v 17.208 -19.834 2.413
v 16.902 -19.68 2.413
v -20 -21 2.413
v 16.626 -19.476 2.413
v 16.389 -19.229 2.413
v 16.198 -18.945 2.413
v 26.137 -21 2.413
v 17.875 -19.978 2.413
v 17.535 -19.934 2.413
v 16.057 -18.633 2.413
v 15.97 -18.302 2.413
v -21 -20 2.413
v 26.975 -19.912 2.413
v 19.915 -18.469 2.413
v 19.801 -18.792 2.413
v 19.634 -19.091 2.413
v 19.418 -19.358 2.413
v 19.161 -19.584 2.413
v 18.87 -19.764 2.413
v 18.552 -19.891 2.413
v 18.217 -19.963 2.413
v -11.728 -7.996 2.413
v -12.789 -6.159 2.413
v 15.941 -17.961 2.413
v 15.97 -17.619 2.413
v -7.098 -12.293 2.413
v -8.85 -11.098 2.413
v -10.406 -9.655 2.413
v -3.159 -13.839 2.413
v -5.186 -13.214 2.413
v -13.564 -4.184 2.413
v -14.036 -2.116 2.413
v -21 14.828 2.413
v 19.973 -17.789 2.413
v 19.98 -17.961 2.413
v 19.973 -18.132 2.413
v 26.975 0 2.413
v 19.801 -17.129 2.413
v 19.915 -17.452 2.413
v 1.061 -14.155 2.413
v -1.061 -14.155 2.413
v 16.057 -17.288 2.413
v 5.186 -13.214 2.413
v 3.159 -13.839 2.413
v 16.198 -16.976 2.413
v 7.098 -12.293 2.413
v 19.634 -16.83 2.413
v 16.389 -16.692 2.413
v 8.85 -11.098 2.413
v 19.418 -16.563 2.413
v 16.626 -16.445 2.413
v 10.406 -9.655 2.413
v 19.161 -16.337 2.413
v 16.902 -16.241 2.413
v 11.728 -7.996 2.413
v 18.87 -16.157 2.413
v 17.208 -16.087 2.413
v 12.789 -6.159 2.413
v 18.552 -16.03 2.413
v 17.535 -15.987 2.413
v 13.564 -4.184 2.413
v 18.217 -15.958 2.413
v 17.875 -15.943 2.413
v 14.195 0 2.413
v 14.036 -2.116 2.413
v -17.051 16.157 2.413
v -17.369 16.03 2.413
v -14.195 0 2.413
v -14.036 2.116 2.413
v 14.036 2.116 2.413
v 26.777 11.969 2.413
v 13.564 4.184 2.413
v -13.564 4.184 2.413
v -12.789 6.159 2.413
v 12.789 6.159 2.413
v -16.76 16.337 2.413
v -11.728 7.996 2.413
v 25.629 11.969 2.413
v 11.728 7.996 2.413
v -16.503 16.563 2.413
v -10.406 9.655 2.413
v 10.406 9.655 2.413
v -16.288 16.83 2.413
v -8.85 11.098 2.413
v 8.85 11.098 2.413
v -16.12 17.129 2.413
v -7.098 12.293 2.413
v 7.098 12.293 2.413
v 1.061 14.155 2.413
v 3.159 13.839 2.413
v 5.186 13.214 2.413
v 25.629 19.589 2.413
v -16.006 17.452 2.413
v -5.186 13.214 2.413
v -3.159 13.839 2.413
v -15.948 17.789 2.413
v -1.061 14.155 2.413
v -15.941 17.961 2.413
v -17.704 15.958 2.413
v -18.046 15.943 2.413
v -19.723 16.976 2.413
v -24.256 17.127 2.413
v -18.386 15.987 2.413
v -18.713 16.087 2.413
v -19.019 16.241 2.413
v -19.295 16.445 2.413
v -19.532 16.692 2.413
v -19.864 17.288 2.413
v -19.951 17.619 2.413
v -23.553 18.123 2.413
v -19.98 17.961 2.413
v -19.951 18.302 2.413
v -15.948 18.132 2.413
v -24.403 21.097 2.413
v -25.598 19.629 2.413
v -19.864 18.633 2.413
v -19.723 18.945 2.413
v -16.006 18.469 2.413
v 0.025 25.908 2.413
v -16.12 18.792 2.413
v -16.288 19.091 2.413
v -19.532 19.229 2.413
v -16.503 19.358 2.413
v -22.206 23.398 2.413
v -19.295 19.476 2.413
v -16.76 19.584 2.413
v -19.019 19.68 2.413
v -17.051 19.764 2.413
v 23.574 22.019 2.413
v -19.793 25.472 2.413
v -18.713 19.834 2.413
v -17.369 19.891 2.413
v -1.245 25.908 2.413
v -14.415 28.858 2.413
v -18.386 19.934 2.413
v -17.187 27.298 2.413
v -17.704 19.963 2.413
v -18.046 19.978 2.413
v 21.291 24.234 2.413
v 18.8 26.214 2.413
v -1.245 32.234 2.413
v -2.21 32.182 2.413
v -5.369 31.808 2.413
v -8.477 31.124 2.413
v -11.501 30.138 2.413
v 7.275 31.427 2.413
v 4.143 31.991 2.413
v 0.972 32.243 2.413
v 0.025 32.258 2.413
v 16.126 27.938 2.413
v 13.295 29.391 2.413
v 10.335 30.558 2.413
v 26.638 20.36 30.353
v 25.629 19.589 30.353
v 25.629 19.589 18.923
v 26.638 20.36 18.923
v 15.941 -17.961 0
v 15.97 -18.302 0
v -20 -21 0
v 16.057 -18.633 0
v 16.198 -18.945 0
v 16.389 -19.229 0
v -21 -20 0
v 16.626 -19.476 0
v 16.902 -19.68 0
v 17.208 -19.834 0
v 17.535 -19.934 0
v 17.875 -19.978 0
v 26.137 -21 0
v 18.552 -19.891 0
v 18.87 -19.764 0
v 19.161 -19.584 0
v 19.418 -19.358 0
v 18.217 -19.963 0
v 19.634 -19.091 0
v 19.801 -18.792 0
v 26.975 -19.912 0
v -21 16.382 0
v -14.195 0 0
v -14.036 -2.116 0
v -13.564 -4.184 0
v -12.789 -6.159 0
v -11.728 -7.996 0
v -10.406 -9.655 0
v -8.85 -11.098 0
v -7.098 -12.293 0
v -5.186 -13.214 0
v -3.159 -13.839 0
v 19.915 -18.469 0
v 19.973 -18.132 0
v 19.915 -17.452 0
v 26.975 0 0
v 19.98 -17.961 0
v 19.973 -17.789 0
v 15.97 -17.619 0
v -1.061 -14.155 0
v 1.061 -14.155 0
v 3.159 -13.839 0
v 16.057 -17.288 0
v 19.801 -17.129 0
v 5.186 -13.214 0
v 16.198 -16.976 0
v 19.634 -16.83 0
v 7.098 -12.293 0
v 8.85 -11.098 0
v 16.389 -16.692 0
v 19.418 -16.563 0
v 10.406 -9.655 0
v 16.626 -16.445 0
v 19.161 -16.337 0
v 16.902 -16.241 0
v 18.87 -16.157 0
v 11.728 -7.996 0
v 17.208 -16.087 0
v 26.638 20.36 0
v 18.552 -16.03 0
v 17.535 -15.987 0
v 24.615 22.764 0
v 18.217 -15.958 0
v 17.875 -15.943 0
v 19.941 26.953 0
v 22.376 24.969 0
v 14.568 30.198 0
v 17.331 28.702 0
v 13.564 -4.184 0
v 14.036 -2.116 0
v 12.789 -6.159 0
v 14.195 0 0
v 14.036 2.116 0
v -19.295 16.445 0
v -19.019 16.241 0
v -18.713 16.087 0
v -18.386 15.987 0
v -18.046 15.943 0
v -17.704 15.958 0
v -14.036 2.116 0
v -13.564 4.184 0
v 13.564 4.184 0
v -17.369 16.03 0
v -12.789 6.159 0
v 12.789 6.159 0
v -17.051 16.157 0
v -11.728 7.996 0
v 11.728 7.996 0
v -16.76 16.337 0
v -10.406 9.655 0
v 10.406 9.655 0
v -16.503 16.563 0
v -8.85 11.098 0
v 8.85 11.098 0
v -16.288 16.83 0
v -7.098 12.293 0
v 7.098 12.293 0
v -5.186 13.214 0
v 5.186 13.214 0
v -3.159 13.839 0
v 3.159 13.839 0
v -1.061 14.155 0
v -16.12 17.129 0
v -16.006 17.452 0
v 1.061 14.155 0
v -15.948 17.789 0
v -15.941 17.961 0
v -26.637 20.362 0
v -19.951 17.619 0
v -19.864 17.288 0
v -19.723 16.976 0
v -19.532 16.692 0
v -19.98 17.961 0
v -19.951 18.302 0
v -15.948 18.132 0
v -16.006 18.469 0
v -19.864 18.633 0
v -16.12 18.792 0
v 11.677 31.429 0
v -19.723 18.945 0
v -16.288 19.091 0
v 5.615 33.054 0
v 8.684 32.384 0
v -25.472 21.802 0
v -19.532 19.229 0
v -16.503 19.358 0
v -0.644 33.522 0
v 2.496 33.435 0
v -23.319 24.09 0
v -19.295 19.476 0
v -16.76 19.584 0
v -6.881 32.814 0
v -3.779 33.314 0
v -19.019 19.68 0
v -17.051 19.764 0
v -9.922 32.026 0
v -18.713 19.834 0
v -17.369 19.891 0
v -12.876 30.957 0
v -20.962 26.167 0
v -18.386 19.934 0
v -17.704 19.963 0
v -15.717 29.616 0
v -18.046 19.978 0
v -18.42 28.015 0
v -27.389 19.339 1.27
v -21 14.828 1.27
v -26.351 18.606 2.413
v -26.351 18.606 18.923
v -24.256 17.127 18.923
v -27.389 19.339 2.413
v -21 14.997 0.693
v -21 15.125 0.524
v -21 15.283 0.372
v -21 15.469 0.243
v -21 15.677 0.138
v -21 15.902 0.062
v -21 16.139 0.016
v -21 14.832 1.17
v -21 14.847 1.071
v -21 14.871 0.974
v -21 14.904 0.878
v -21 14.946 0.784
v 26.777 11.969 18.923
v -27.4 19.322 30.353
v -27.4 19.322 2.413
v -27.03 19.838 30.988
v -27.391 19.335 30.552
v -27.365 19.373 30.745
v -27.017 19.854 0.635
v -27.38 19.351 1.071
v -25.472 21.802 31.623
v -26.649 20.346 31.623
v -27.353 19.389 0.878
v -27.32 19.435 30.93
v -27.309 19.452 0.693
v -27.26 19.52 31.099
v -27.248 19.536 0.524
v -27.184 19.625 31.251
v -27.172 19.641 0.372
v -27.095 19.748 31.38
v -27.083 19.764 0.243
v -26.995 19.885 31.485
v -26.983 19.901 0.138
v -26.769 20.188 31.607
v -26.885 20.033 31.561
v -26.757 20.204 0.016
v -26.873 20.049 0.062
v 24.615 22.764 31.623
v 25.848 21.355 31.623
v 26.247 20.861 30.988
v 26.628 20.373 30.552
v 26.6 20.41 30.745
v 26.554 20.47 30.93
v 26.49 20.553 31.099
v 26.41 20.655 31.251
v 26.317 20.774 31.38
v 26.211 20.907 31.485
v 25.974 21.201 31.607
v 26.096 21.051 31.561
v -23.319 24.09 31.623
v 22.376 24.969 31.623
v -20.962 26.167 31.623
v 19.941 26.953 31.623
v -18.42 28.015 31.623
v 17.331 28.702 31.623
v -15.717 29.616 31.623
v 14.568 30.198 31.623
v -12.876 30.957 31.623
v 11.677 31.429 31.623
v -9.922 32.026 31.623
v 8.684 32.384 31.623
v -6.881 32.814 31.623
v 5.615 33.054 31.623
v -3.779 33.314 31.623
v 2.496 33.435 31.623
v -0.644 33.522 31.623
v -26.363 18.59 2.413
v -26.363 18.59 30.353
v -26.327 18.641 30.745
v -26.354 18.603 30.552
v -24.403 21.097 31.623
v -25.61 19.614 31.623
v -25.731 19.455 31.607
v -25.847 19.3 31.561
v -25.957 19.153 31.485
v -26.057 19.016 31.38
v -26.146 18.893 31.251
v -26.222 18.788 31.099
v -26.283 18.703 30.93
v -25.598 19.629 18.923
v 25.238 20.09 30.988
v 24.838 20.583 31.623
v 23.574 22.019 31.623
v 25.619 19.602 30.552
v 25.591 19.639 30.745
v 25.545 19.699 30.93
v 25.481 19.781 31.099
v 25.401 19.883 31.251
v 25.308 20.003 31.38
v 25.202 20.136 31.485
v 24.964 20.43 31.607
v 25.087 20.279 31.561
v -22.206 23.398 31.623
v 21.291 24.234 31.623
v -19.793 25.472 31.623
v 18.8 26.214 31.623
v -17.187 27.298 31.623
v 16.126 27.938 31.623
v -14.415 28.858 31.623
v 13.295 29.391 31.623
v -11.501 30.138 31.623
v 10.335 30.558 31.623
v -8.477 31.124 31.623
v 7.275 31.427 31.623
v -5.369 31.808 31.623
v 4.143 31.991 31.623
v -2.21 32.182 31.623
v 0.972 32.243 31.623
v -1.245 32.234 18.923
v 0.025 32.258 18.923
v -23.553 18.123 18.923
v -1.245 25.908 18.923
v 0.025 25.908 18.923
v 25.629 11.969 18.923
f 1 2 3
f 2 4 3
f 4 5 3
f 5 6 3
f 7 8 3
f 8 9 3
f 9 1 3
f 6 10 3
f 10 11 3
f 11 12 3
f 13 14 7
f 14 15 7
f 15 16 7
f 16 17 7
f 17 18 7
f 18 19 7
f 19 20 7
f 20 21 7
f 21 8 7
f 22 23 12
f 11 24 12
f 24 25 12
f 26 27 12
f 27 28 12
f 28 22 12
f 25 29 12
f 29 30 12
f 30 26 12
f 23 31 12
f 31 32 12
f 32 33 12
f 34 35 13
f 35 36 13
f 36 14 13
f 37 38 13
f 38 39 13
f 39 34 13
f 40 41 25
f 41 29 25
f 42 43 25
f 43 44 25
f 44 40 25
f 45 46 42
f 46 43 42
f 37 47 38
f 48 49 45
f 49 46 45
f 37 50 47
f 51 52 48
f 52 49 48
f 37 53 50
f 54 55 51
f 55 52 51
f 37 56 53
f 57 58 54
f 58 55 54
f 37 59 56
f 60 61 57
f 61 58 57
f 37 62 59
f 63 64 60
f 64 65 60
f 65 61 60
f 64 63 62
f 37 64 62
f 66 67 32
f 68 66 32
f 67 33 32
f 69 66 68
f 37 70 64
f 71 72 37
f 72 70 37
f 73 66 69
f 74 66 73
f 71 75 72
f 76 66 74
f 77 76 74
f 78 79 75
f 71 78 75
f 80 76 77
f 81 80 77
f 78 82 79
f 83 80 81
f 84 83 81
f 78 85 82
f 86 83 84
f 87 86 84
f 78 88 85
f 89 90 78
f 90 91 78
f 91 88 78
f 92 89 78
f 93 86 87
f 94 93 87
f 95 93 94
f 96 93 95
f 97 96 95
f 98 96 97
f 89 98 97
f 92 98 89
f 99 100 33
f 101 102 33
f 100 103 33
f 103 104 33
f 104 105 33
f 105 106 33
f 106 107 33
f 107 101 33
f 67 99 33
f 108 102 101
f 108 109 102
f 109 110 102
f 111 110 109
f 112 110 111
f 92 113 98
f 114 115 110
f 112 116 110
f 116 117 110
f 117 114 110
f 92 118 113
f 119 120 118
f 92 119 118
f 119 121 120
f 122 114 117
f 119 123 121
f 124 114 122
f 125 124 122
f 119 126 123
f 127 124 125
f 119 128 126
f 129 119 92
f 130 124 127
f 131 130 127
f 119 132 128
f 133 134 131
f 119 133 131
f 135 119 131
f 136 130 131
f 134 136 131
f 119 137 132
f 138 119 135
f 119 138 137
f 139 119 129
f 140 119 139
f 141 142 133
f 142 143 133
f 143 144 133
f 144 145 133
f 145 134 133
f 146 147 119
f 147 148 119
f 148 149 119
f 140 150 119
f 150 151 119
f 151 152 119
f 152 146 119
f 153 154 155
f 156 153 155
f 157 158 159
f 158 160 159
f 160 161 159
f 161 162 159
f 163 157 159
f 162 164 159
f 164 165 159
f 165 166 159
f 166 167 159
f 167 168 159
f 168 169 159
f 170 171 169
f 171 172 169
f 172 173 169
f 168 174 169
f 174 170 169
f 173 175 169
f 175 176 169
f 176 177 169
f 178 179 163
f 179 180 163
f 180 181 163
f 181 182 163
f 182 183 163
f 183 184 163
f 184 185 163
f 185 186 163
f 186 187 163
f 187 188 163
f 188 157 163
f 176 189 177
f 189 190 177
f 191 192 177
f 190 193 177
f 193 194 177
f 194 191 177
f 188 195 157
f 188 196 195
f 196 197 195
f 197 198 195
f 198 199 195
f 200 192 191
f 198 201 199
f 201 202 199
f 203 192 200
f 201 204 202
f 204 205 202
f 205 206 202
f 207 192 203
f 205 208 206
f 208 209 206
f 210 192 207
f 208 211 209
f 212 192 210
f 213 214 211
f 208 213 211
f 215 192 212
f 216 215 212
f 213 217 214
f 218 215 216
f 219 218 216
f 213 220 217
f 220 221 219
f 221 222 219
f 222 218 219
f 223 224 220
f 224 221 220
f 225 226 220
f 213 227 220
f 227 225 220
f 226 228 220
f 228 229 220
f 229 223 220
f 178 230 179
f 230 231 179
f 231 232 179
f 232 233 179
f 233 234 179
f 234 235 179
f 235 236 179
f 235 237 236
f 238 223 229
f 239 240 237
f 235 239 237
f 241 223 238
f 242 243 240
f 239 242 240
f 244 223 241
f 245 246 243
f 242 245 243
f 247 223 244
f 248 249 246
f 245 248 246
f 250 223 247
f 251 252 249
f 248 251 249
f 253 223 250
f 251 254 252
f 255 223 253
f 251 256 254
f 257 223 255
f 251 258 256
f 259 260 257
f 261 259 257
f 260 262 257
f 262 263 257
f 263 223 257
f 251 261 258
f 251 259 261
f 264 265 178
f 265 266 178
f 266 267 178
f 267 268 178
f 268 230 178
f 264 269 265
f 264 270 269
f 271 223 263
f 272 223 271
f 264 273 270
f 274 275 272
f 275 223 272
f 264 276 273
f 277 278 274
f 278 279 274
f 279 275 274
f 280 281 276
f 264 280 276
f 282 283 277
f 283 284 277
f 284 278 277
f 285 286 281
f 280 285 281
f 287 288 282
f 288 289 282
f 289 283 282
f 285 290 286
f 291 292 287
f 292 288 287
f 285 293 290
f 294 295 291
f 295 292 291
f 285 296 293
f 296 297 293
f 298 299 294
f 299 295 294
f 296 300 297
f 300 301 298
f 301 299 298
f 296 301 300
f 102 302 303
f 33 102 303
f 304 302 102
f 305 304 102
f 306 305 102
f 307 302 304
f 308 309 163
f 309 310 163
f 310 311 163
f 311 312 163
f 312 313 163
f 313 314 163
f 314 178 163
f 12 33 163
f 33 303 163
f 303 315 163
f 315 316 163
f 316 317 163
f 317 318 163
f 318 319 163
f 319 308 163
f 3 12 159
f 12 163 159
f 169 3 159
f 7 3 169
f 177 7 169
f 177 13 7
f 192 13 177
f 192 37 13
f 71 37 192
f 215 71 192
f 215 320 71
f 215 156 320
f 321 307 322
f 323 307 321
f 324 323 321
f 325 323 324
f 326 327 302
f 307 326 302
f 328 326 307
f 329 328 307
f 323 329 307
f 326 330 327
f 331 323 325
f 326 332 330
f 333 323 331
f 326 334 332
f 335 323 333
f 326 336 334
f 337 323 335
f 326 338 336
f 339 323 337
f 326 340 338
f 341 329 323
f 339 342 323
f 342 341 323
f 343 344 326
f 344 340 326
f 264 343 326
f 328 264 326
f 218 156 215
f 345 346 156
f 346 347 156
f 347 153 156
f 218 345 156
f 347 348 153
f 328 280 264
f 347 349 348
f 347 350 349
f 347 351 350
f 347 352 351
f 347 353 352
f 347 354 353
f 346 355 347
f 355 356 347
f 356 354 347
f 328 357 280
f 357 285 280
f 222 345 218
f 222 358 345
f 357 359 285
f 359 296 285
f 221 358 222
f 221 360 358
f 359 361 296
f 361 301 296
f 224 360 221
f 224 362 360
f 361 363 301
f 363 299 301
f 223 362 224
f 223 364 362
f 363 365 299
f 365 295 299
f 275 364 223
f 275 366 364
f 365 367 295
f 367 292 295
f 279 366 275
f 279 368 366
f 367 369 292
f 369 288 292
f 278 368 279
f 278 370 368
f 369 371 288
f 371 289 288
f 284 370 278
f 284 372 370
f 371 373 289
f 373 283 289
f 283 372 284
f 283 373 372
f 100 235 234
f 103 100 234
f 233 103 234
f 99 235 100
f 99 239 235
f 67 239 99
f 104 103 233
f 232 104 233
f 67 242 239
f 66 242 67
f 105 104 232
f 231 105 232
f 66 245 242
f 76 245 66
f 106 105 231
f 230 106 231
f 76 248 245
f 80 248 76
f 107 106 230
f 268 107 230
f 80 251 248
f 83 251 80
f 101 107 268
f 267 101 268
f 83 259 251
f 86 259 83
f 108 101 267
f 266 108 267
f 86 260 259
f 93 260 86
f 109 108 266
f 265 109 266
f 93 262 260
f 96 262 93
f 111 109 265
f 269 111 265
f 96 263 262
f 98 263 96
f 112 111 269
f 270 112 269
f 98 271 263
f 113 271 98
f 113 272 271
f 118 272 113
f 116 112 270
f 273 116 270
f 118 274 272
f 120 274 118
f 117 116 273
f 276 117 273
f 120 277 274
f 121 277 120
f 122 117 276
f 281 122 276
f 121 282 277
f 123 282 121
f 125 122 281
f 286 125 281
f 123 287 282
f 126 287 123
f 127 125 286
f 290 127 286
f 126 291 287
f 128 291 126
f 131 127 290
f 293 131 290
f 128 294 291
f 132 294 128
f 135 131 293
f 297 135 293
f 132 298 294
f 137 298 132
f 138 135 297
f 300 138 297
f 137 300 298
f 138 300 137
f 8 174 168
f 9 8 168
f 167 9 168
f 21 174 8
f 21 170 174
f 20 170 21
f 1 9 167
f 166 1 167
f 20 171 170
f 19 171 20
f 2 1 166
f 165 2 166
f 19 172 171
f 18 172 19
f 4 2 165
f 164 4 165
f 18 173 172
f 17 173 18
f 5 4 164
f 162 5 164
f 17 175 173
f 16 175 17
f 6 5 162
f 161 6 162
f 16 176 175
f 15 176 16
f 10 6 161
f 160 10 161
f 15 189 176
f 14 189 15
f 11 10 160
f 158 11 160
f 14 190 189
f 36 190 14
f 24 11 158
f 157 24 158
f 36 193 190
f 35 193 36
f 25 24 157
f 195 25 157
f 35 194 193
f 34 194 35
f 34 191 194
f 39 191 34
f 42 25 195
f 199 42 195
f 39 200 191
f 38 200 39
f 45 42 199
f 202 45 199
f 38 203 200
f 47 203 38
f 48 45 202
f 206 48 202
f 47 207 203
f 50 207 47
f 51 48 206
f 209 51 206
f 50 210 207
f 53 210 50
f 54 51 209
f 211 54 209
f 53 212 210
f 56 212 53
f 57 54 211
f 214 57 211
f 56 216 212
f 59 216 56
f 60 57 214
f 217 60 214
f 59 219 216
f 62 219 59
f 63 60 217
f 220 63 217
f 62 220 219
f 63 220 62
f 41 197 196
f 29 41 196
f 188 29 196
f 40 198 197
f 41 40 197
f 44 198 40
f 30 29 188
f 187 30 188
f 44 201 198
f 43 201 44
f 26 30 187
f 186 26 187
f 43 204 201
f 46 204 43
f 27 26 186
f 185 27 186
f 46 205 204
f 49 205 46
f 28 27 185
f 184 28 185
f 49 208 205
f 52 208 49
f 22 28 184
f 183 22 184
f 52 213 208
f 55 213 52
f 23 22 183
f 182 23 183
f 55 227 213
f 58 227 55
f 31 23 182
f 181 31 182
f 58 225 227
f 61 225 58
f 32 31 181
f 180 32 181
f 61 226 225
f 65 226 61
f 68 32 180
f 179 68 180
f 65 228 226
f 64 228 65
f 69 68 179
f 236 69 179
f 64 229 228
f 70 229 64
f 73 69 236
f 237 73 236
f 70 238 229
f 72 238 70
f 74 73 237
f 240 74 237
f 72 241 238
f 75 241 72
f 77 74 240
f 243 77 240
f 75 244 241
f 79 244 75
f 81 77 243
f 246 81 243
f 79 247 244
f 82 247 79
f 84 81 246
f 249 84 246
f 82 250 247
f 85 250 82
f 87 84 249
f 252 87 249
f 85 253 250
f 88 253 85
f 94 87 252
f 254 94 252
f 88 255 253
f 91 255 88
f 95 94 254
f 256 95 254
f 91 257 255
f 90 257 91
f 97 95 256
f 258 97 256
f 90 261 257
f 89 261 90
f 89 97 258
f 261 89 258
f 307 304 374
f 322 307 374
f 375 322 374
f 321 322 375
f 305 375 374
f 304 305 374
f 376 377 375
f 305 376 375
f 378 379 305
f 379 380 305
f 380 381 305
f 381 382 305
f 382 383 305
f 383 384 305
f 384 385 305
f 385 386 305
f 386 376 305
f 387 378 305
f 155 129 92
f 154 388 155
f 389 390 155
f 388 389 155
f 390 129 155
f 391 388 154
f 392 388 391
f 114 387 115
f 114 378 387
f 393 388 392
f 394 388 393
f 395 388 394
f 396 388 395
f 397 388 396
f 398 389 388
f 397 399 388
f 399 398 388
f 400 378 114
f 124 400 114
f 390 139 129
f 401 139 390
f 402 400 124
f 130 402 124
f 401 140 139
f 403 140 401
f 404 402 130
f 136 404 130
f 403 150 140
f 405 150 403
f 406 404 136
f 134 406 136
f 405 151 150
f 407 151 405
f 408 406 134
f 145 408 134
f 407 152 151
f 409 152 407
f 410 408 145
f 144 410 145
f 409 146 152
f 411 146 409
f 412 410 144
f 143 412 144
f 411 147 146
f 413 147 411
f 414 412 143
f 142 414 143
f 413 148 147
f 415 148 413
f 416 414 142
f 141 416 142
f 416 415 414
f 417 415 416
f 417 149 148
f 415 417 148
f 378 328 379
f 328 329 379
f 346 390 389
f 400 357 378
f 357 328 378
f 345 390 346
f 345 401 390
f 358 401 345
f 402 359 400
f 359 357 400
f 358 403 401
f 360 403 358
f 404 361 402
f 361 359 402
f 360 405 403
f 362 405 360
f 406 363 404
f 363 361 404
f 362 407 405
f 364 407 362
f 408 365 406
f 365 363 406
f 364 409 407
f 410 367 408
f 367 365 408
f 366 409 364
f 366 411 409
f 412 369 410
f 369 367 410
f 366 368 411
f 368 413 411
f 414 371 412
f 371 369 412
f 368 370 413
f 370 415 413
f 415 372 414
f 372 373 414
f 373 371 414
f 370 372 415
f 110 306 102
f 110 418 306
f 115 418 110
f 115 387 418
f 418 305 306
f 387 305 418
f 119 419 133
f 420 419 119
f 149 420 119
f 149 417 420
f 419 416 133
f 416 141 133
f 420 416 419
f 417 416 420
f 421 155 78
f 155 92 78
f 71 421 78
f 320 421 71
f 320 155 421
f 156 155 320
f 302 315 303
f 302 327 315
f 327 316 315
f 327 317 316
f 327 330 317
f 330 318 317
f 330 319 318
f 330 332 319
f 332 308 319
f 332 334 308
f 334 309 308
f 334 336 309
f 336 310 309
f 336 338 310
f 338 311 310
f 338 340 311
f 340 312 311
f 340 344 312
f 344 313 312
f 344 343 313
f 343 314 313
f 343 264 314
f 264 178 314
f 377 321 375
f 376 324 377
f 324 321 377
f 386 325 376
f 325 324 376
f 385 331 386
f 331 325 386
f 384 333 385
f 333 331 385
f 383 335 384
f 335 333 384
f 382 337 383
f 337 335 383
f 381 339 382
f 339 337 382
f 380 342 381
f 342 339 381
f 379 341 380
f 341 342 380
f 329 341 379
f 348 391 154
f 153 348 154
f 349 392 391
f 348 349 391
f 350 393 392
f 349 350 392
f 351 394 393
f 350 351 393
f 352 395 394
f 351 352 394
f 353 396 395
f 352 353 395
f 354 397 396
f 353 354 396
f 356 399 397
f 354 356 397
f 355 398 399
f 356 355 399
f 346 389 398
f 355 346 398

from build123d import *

# Parameters (mm, degrees)
SKETCH1_R           = 2.0193
SKETCH1_R_2         = 14.195
BOSS_EXTRUDE1_DEPTH = 2.413
BOSS_EXTRUDE2_DEPTH = 29.21
BOSS_EXTRUDE9_DEPTH = 16.51
FILLET1_R           = 1.27


with BuildPart() as part:
    # Sketch1 → Boss-Extrude1 (new body)
    with BuildSketch(Plane.XY):
        with BuildLine():
            Line((-21, 14.827700733), (-21, -20))
            Line((-21, -20), (-20, -21))
            Line((-20, -21), (26.136694206, -21))
            Line((26.136694206, -21), (26.9748, -19.911980036))
            Line((26.9748, -19.911980036), (26.9748, 0))
            Line((26.9748, 0), (26.637921908, 20.360449416))
            ThreePointArc((26.637921908, 20.360449416), (-0.633988092, 33.522005356), (-27.388735161, 19.338665163))
            Line((-27.388735161, 19.338665163), (-21, 14.827700733))
        make_face()
        with Locations((-17.960512242, 17.960512242)):
            Circle(SKETCH1_R, mode=Mode.SUBTRACT)
        with Locations((17.960512242, -17.960512242)):
            Circle(SKETCH1_R, mode=Mode.SUBTRACT)
        Circle(SKETCH1_R_2, mode=Mode.SUBTRACT)
    extrude(amount=BOSS_EXTRUDE1_DEPTH)

    # Sketch2 → Boss-Extrude2 (add)
    with BuildSketch(Plane.XY.offset(2.413)):
        with BuildLine():
            Line((-26.362552713, 18.590168866), (-27.400448489, 19.322065278))
            ThreePointArc((-27.400448489, 19.322065278), (-0.644144472, 33.521811734), (26.637921908, 20.360449416))
            Line((26.637921908, 20.360449416), (25.628909714, 19.589220272))
            ThreePointArc((25.628909714, 19.589220272), (-0.619745061, 32.252046138), (-26.362552713, 18.590168866))
        make_face()
    extrude(amount=BOSS_EXTRUDE2_DEPTH)

    # Sketch3 → Boss-Extrude9 (add)
    with BuildSketch(Plane.XY.offset(2.413)):
        with BuildLine():
            Line((-23.55281498, 18.123360163), (-25.598477532, 19.628971243))
            ThreePointArc((-25.598477532, 19.628971243), (-25.979914408, 19.121260716), (-26.351283072, 18.606139967))
            Line((-26.351283072, 18.606139967), (-24.25635866, 17.12695367))
            Line((-24.25635866, 17.12695367), (-23.55281498, 18.123360163))
        make_face()
        with BuildLine():
            Line((-1.244999497, 25.907990312), (-1.244999497, 32.23396563))
            ThreePointArc((-1.244999497, 32.23396563), (-0.610117761, 32.252229695), (0.025000503, 32.257990312))
            Line((0.025000503, 32.257990312), (0.025000503, 25.907990312))
            Line((0.025000503, 25.907990312), (-1.244999497, 25.907990312))
        make_face()
        Polygon((25.628909714, 19.589220272), (25.628909714, 11.969220272), (26.776760752, 11.969220272), (26.637921908, 20.360449416), align=None)
    extrude(amount=BOSS_EXTRUDE9_DEPTH)

    # Fillet1
    fillet1_edges = [part.edges().sort_by_distance(p)[0] for p in [
        (-24.194367581, 17.083182948, 0),
        (-26.881500601, 18.956117072, 31.623),
        (26.133415811, 19.974834844, 31.623),
    ]]
    fillet(fillet1_edges, radius=FILLET1_R)


solid = part.part
